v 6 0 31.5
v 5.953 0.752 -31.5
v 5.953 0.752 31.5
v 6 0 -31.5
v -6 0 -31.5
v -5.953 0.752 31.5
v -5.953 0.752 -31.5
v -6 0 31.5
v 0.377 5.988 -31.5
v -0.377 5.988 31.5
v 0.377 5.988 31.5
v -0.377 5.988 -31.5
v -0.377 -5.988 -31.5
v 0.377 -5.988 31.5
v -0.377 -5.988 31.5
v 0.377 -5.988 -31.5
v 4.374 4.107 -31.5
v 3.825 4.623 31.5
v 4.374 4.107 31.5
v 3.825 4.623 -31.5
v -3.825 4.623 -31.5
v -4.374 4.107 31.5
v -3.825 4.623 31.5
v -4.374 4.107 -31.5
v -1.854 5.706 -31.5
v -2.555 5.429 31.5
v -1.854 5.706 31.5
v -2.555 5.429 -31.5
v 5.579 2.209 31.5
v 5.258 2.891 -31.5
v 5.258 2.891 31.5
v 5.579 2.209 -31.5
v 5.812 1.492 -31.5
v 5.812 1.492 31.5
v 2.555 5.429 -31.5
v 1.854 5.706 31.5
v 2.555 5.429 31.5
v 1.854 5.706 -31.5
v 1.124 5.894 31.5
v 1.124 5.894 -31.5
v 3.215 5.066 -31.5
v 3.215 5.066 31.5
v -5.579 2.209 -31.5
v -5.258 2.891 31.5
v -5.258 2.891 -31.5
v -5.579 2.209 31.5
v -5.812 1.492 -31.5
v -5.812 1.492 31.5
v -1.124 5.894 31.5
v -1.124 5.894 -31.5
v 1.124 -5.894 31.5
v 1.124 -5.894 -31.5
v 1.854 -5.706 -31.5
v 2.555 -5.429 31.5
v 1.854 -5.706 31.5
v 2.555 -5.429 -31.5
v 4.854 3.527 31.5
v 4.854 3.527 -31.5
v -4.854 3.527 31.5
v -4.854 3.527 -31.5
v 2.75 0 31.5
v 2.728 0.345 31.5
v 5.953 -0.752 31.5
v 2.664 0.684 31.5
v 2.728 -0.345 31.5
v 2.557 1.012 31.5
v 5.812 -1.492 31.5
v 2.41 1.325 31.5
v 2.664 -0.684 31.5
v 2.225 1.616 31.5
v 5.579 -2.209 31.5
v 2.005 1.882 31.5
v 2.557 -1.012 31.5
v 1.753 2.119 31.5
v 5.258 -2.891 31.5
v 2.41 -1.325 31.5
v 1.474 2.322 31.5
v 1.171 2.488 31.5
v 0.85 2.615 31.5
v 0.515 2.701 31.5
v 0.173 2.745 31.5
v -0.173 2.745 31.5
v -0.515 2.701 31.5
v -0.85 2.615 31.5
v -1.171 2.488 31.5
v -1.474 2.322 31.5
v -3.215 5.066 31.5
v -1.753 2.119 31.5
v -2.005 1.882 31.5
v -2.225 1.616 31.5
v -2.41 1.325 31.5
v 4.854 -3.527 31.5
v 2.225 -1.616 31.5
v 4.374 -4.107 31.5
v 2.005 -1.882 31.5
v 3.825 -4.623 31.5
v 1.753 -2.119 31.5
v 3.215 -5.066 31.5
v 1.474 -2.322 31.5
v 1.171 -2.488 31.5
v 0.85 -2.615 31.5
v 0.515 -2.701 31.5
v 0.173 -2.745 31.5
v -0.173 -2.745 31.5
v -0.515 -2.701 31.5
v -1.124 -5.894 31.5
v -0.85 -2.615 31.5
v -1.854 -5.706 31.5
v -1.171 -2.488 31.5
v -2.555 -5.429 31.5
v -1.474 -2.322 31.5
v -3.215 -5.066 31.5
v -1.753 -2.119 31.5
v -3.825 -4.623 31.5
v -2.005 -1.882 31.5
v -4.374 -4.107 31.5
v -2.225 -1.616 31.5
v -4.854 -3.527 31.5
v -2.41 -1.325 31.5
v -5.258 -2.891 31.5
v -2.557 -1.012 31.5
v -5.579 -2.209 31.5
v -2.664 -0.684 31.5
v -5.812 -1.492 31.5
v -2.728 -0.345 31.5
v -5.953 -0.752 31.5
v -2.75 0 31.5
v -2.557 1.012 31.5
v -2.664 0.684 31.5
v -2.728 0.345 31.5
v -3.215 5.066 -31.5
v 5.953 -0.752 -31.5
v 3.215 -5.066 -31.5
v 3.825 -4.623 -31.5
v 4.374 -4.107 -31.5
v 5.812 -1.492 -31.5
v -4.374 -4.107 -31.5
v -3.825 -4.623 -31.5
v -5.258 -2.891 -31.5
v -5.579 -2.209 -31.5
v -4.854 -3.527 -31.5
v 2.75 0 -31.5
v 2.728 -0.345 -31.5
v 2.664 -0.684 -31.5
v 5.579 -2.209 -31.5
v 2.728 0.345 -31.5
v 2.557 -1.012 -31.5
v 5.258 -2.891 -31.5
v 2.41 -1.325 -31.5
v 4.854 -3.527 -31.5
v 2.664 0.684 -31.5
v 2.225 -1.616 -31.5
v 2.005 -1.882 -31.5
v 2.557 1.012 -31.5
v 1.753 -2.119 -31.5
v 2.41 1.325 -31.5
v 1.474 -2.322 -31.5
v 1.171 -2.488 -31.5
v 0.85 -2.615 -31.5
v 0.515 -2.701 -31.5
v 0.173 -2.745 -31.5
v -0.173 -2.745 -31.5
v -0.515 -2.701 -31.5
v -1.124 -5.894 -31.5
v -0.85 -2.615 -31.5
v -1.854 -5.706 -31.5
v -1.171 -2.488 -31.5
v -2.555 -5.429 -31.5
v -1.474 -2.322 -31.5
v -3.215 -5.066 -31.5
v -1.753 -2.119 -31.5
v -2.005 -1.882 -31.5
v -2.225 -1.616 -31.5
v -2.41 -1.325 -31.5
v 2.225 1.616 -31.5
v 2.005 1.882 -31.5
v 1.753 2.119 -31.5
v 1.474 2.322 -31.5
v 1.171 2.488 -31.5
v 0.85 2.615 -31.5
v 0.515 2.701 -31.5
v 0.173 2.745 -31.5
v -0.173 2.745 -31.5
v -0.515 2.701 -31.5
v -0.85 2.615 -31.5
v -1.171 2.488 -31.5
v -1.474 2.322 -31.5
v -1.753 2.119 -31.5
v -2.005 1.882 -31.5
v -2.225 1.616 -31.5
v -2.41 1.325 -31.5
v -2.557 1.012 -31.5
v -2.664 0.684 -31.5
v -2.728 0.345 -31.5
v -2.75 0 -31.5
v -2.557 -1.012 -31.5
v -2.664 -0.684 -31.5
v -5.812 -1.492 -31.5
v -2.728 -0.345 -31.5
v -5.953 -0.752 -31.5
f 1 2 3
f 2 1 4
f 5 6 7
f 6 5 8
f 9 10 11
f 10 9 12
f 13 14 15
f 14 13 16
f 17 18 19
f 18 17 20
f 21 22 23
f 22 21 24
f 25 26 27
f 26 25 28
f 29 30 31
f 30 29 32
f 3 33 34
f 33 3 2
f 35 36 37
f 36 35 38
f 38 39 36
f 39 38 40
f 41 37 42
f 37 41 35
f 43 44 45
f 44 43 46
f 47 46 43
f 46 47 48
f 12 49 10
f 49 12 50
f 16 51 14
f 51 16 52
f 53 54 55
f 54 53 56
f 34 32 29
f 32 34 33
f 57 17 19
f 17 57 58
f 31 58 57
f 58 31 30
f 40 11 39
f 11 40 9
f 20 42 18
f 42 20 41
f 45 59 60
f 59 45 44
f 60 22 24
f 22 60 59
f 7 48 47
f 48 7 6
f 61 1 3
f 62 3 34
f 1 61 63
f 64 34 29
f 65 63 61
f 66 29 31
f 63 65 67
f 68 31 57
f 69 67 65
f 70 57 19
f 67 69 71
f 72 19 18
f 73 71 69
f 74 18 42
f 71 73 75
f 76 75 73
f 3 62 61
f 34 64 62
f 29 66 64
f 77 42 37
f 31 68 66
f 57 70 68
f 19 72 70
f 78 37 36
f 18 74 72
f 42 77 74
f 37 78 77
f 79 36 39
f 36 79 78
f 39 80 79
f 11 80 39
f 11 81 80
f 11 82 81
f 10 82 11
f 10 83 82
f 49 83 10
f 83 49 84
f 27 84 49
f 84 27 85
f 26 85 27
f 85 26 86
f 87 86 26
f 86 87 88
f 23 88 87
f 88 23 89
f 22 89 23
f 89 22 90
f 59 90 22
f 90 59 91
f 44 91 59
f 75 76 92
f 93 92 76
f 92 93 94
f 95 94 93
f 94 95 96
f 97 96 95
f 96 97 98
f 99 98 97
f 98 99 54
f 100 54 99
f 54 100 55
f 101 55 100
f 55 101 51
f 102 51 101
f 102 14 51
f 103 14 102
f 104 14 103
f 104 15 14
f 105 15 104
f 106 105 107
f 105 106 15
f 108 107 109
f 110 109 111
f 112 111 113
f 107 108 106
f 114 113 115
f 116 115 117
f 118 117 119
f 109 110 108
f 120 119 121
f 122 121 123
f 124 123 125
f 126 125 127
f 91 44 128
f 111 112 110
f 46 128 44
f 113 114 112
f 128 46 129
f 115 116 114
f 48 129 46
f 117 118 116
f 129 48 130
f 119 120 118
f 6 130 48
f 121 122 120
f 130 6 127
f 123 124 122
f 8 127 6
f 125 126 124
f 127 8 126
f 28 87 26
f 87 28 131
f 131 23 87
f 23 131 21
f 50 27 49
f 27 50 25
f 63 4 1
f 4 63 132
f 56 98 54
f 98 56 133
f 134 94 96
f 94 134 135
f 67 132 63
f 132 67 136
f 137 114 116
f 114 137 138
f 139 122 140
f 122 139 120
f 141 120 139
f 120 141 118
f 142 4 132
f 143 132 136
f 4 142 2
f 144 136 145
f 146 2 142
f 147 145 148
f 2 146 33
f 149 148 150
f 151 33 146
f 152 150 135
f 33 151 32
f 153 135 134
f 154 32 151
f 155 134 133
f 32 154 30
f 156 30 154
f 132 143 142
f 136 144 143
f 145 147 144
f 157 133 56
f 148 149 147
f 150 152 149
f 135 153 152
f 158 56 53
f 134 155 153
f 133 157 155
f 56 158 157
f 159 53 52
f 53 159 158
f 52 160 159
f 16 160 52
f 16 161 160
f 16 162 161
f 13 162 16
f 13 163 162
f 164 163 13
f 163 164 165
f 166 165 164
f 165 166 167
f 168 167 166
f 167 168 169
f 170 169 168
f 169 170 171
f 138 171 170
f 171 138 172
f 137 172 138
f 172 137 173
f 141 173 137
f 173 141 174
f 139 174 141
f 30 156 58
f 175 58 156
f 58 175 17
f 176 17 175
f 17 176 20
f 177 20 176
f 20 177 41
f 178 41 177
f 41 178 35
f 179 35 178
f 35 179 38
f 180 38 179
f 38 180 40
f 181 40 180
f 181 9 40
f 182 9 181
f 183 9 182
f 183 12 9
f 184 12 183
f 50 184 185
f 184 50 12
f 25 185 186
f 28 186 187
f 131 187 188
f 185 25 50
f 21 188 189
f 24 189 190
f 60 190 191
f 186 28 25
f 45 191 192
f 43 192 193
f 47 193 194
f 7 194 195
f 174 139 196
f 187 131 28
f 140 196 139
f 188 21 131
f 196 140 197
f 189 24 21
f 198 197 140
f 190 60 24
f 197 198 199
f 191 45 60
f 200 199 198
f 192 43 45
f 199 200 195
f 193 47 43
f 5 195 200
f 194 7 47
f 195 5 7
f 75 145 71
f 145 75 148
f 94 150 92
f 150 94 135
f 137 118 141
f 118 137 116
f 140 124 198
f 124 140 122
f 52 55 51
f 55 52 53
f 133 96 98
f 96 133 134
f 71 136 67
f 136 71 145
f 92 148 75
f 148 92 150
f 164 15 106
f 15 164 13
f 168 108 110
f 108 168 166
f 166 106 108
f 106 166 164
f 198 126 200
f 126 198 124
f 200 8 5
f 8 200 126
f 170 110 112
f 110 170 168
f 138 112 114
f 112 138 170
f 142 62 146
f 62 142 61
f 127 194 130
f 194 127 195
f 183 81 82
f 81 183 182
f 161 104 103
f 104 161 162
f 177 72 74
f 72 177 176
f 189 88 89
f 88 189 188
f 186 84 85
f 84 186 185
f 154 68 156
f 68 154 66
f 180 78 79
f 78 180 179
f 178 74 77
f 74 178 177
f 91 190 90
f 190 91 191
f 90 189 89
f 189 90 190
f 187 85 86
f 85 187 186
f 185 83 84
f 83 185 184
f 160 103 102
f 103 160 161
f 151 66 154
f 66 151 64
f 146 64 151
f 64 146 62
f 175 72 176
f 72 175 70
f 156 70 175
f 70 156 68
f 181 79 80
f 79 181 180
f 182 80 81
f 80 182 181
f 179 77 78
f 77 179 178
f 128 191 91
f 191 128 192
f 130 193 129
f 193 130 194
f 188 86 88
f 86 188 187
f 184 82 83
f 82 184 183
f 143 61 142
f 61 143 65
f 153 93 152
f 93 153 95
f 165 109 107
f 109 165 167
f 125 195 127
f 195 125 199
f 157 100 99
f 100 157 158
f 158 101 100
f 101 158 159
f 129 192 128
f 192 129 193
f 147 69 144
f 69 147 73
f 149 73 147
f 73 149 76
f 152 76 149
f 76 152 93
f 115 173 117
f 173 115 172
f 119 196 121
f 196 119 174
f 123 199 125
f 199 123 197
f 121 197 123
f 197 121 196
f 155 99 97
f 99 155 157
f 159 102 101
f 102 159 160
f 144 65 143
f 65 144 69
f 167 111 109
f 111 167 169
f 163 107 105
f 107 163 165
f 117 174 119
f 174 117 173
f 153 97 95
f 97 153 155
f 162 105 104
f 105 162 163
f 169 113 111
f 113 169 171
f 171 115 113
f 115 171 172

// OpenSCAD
$fn = 50;


difference() {
	union() {
		translate(v = [0, 0, -31.5000000000]) {
			cylinder(h = 63, r = 6.0000000000);
		}
	}
	union() {
		translate(v = [0, 0, -100.0000000000]) {
			cylinder(h = 200, r = 2.7500000000);
		}
	}
}
